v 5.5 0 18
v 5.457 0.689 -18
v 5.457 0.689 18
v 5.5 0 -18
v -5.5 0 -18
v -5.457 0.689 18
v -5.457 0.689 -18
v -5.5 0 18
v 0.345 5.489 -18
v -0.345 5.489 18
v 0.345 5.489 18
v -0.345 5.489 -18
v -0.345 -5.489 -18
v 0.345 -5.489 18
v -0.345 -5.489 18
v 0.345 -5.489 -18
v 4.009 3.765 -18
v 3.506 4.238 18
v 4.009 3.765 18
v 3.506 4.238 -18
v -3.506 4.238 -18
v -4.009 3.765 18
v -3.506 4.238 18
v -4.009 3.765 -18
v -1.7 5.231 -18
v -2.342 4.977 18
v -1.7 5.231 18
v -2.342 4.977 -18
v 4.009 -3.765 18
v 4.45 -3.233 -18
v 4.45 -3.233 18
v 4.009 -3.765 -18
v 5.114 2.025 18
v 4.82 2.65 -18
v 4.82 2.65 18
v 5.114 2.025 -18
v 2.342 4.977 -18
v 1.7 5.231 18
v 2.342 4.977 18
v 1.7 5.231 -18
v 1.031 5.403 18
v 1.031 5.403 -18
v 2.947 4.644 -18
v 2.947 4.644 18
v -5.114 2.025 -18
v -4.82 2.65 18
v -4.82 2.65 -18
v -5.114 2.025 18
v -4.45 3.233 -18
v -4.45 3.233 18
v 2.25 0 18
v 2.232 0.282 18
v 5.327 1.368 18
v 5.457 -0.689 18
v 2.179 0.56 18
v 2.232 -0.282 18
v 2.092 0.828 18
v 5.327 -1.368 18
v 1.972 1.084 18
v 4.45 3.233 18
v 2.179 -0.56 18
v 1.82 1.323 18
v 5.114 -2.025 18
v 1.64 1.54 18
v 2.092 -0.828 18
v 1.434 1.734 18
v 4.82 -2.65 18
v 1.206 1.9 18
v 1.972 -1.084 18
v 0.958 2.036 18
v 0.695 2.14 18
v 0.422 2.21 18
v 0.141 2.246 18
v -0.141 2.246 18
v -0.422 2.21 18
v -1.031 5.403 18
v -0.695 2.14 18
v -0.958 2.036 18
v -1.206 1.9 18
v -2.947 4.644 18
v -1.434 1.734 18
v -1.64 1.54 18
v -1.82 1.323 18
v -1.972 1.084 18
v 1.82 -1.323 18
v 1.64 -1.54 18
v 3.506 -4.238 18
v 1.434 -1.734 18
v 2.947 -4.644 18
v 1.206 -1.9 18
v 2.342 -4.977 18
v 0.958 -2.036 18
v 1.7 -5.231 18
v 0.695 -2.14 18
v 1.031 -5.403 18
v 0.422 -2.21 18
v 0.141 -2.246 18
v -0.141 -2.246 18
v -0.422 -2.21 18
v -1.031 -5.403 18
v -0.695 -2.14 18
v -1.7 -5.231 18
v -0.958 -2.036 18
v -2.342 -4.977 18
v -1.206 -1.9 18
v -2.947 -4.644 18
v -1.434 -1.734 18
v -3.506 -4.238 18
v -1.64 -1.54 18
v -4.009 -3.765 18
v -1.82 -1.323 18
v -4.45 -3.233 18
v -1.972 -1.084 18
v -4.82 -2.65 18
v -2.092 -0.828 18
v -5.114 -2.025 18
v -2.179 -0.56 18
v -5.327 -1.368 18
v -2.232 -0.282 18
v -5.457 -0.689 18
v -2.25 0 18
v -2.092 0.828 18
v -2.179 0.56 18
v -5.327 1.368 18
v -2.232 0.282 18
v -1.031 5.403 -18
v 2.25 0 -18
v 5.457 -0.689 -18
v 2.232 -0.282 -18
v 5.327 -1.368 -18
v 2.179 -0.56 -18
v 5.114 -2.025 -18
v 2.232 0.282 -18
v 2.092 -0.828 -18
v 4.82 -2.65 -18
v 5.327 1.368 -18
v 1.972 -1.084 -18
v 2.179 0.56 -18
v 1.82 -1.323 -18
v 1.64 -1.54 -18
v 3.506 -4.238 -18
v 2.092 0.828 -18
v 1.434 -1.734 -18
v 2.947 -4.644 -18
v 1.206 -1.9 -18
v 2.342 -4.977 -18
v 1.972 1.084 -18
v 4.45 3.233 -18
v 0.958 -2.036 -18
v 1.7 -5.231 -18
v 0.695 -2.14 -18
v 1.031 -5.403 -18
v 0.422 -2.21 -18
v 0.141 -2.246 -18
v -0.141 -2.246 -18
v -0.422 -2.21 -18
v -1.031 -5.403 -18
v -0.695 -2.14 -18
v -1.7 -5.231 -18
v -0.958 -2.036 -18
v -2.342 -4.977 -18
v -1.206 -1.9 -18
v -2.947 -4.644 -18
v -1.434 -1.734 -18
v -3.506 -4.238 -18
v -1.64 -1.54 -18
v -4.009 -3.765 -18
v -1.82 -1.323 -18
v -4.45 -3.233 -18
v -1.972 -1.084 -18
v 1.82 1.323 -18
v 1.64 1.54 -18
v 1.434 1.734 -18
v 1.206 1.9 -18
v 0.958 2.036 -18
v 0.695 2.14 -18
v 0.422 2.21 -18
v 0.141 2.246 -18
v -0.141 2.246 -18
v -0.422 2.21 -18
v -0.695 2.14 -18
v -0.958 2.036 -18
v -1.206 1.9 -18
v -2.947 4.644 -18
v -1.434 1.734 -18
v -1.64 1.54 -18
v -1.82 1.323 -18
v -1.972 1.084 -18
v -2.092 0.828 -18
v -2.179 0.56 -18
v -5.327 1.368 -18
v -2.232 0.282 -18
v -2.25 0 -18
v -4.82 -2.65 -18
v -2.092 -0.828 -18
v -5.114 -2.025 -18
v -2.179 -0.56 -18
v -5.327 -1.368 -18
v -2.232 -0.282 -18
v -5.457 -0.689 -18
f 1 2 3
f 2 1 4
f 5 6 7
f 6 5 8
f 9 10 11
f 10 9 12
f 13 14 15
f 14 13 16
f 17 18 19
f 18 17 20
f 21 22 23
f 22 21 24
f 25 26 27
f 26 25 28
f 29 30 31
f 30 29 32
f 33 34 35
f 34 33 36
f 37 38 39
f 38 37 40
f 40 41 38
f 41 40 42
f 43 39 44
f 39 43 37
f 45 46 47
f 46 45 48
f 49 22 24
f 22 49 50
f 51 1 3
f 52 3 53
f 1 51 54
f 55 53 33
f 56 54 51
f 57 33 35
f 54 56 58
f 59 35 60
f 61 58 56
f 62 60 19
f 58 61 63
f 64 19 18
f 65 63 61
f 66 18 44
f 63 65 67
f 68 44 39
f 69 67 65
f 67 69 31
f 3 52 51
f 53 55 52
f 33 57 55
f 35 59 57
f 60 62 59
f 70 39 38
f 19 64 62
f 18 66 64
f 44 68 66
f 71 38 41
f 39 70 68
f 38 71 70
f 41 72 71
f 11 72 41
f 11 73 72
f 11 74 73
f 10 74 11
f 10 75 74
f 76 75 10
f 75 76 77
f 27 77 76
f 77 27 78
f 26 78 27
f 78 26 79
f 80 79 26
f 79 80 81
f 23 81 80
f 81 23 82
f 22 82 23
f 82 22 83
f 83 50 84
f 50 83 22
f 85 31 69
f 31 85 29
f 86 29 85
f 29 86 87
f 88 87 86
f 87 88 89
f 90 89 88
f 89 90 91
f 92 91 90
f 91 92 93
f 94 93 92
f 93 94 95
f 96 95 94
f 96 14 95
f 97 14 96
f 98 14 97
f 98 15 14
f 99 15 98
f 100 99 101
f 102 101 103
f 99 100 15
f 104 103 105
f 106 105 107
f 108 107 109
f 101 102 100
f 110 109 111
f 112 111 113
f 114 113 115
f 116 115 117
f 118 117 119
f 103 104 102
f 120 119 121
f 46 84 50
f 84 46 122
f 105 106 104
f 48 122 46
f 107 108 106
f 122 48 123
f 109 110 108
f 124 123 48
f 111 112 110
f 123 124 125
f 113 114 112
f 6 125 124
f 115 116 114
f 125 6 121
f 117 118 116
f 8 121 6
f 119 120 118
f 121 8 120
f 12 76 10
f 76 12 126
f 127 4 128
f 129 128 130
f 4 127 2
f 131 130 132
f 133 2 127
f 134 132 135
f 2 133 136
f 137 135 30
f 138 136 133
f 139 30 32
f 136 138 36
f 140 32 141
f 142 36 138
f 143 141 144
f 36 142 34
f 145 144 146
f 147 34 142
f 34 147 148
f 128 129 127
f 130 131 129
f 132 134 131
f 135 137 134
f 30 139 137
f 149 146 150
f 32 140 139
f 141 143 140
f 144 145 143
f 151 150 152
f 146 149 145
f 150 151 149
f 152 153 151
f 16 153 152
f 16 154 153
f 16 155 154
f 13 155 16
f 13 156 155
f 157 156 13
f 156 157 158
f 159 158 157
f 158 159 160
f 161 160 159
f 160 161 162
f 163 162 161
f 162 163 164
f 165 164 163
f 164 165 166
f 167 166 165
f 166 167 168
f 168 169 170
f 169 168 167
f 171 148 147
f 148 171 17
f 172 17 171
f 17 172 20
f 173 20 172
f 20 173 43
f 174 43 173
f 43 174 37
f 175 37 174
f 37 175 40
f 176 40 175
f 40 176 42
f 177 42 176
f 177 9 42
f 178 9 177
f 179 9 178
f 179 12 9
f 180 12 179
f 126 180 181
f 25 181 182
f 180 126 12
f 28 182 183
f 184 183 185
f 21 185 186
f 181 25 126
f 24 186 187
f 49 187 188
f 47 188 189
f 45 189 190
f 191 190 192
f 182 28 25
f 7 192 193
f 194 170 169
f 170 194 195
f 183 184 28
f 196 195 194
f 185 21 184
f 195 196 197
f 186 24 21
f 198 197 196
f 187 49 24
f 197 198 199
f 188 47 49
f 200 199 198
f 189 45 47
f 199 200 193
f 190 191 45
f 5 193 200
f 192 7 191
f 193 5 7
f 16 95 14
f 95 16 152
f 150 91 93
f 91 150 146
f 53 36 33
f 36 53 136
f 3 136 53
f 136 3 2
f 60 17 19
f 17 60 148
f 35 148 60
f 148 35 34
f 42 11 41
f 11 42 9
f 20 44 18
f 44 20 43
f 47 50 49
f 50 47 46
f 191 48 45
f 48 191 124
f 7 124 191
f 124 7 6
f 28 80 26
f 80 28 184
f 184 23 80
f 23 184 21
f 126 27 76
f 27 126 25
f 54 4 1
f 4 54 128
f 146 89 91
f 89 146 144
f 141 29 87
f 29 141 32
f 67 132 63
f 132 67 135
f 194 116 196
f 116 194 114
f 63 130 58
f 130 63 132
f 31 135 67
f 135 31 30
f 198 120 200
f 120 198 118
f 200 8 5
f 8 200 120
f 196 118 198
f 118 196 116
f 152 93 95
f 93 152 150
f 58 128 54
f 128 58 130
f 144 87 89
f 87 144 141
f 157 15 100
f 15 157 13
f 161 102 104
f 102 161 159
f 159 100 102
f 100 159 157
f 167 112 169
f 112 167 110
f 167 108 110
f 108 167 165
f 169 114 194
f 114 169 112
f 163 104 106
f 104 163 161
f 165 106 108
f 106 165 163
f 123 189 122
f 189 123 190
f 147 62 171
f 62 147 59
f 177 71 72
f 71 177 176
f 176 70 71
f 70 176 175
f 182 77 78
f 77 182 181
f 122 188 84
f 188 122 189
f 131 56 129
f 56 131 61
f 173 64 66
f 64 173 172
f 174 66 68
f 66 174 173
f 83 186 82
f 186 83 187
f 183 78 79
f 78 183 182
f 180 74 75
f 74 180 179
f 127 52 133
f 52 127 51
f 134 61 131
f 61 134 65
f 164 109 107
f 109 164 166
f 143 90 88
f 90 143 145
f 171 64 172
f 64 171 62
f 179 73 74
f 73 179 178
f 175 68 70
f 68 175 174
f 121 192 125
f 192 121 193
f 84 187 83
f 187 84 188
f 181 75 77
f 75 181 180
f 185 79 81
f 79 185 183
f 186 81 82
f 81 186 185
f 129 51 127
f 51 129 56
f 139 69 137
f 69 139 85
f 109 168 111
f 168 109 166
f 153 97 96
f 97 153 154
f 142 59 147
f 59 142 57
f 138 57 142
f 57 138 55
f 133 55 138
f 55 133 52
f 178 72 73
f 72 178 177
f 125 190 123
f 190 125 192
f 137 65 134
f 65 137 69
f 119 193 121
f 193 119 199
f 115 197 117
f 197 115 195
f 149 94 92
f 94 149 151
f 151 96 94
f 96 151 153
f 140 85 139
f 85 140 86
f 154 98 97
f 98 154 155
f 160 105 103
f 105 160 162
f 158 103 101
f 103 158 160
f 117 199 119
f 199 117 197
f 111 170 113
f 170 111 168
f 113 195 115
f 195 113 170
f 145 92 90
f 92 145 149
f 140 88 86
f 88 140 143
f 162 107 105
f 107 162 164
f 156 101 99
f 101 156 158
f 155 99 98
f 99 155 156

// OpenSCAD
$fn = 50;


difference() {
	union() {
		translate(v = [0, 0, -18.0000000000]) {
			cylinder(h = 36, r = 5.5000000000);
		}
	}
	union() {
		translate(v = [0, 0, -100.0000000000]) {
			cylinder(h = 200, r = 2.2500000000);
		}
	}
}
